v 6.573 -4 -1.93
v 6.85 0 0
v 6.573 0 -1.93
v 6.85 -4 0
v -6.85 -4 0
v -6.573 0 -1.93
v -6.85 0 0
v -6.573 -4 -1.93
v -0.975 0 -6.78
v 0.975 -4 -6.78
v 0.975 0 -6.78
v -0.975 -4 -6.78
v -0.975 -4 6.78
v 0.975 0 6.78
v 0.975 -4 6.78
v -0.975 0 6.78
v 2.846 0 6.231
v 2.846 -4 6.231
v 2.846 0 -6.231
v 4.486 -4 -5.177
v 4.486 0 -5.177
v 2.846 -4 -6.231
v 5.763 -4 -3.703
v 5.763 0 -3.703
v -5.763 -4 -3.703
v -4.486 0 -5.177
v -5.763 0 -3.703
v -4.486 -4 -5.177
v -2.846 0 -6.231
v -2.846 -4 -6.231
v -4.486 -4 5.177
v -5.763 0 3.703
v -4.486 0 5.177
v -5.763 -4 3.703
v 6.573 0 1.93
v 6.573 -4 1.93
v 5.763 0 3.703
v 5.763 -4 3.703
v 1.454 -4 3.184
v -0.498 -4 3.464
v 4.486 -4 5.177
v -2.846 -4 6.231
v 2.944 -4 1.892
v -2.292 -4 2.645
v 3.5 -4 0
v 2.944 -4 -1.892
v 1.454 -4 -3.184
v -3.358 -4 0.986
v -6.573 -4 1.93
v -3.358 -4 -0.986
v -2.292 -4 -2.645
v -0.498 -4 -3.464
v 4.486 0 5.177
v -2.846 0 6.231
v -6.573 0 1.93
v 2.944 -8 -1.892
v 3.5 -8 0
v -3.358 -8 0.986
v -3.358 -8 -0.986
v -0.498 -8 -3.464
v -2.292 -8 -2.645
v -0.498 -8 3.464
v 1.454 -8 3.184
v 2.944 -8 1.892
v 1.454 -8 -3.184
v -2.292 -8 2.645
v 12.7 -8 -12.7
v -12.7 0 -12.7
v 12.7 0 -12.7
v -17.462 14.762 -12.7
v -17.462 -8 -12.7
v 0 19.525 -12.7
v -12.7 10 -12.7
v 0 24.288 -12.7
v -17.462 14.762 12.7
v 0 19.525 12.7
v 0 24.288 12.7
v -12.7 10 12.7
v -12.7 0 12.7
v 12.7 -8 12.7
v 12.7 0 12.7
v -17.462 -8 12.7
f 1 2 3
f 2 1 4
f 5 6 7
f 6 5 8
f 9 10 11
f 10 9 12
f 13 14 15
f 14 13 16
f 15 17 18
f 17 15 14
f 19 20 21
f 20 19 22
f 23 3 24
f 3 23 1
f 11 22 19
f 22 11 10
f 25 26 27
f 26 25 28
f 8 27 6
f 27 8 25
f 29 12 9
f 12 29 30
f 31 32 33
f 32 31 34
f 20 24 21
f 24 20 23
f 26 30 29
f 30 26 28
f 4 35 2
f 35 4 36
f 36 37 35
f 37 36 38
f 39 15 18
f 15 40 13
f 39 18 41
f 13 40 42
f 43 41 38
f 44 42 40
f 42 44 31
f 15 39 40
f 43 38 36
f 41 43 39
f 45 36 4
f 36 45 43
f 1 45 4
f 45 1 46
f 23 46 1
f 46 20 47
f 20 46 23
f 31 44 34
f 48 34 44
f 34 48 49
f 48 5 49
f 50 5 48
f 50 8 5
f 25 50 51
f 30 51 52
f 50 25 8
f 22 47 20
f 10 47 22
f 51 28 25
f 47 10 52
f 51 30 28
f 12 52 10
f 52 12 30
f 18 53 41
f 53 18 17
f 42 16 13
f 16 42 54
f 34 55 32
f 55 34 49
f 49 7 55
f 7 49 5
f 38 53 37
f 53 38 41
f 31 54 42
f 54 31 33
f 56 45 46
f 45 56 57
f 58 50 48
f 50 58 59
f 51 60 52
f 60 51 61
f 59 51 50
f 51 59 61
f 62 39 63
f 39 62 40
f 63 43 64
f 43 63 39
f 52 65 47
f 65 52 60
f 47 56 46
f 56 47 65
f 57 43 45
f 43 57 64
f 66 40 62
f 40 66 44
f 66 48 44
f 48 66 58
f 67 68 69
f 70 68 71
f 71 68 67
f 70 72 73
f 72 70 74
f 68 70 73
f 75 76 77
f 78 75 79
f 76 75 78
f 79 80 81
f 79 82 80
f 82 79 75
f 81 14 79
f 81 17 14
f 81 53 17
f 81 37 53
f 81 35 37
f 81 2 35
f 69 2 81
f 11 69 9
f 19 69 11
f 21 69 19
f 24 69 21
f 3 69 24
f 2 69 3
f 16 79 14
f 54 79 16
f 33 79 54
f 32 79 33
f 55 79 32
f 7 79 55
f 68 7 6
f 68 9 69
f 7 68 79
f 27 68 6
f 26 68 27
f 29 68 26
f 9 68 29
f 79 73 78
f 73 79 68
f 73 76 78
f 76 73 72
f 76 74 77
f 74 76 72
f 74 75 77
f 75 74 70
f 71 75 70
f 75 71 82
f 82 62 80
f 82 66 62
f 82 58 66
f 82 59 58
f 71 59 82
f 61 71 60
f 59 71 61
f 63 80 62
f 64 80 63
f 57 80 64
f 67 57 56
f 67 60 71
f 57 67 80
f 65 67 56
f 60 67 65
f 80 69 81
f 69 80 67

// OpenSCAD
// file: mods.scad
///////////////////////////////////////
//
//  Mod to add an articulated phone mount to the laryngoscope
// 
//  (C) 2021-07-13, D. Chandramohan
//
//

// bolt dimensions
BOLT_SHANK_DIA = 6.35; // mm = 1/4 in
BOLT_SHANK_LEN = 6.35 * 3; // mm (3/4 in length)
BOLT_HEAD_HIG = 4; // mm
BOLT_HEAD_DIA = 6.35 * 2; // mm (~0.5 in)

// bolt hole
tol = 1; // mm overhang (so no edge issues)
module bolt_hole () {
     union () {
	  translate ( [ 0, 0, (BOLT_HEAD_HIG + tol)/2 ] ) cylinder ( h = BOLT_HEAD_HIG + tol,
								     r = (BOLT_HEAD_DIA + tol) / 2,
								     center = true);
	  translate ( [ 0, 0, -(BOLT_SHANK_LEN + tol)/2 ] ) cylinder ( h = BOLT_SHANK_LEN + 2 * tol,
								       r = (BOLT_SHANK_DIA + 0.65) / 2, // tighter tolerance
								       center = true);
     }
}

// bracket
FRAME_THK = 6.35 * 3/4; // mm (3/16 in)
PHONE_THK = 10; // mm (a bit larger than average)
module bracket () {
     linear_extrude ( height = 2 * BOLT_HEAD_DIA,
		      center = true,
		      convexity = 10,
		      twist = 0 ) polygon ( points = [
						 [ BOLT_HEAD_DIA, 0],
						 [ -BOLT_HEAD_DIA, 0],
						 [ -BOLT_HEAD_DIA, PHONE_THK],
						 [ 0, PHONE_THK + 2 *FRAME_THK],
						 [ 0, PHONE_THK + 3 * FRAME_THK],
						 [ -BOLT_HEAD_DIA - FRAME_THK, PHONE_THK + FRAME_THK],
						 [ -BOLT_HEAD_DIA - FRAME_THK, -BOLT_HEAD_HIG * 2],
						 [ BOLT_HEAD_DIA, -BOLT_HEAD_HIG * 2] ] );
}

// rail
RAIL_LENGTH = 100; // mm, 10 cm
RAIL_WIDTH = 2 * BOLT_HEAD_DIA;
module rail () {
     union () {
	  // rail body
	  difference () {
	       cube ( [RAIL_LENGTH, RAIL_WIDTH, BOLT_HEAD_HIG], center=true );
	       union () {
		    translate ( [(RAIL_LENGTH/2) - 2*BOLT_SHANK_DIA, 0, 0] )
			 cylinder ( h = BOLT_SHANK_LEN,
				    r = (BOLT_SHANK_DIA + 0.65) / 2,
				    center = true );
		    translate ( [-(RAIL_LENGTH/2) + 2*BOLT_SHANK_DIA, 0, 0] )
			 cylinder ( h = BOLT_SHANK_LEN,
				    r = (BOLT_SHANK_DIA + 0.65) / 2,
				    center = true );
		    cube ( [RAIL_LENGTH - 4*BOLT_SHANK_DIA, BOLT_SHANK_DIA + 0.65, BOLT_HEAD_HIG + 2], center = true );
	       }
	  }
	  // connector bolt hole
	  translate ( [-RAIL_LENGTH/2 - (3*BOLT_HEAD_DIA/4), RAIL_WIDTH/2 - BOLT_HEAD_HIG, 0] ) rotate ( [90, 0, 0] )
	       difference () {
	       cylinder ( r = BOLT_HEAD_DIA,
			  h = 2 * BOLT_HEAD_HIG,
			  center = true );
	       bolt_hole ();
	  }
     }
}
// main file
include <mods.scad>

difference () {
     color([0,0,1,0.5]) bracket ();
     color([0,1,0,1]) translate ( [0, -BOLT_HEAD_HIG, 0] ) rotate ( [-90, 0, 0] ) bolt_hole ();
}
